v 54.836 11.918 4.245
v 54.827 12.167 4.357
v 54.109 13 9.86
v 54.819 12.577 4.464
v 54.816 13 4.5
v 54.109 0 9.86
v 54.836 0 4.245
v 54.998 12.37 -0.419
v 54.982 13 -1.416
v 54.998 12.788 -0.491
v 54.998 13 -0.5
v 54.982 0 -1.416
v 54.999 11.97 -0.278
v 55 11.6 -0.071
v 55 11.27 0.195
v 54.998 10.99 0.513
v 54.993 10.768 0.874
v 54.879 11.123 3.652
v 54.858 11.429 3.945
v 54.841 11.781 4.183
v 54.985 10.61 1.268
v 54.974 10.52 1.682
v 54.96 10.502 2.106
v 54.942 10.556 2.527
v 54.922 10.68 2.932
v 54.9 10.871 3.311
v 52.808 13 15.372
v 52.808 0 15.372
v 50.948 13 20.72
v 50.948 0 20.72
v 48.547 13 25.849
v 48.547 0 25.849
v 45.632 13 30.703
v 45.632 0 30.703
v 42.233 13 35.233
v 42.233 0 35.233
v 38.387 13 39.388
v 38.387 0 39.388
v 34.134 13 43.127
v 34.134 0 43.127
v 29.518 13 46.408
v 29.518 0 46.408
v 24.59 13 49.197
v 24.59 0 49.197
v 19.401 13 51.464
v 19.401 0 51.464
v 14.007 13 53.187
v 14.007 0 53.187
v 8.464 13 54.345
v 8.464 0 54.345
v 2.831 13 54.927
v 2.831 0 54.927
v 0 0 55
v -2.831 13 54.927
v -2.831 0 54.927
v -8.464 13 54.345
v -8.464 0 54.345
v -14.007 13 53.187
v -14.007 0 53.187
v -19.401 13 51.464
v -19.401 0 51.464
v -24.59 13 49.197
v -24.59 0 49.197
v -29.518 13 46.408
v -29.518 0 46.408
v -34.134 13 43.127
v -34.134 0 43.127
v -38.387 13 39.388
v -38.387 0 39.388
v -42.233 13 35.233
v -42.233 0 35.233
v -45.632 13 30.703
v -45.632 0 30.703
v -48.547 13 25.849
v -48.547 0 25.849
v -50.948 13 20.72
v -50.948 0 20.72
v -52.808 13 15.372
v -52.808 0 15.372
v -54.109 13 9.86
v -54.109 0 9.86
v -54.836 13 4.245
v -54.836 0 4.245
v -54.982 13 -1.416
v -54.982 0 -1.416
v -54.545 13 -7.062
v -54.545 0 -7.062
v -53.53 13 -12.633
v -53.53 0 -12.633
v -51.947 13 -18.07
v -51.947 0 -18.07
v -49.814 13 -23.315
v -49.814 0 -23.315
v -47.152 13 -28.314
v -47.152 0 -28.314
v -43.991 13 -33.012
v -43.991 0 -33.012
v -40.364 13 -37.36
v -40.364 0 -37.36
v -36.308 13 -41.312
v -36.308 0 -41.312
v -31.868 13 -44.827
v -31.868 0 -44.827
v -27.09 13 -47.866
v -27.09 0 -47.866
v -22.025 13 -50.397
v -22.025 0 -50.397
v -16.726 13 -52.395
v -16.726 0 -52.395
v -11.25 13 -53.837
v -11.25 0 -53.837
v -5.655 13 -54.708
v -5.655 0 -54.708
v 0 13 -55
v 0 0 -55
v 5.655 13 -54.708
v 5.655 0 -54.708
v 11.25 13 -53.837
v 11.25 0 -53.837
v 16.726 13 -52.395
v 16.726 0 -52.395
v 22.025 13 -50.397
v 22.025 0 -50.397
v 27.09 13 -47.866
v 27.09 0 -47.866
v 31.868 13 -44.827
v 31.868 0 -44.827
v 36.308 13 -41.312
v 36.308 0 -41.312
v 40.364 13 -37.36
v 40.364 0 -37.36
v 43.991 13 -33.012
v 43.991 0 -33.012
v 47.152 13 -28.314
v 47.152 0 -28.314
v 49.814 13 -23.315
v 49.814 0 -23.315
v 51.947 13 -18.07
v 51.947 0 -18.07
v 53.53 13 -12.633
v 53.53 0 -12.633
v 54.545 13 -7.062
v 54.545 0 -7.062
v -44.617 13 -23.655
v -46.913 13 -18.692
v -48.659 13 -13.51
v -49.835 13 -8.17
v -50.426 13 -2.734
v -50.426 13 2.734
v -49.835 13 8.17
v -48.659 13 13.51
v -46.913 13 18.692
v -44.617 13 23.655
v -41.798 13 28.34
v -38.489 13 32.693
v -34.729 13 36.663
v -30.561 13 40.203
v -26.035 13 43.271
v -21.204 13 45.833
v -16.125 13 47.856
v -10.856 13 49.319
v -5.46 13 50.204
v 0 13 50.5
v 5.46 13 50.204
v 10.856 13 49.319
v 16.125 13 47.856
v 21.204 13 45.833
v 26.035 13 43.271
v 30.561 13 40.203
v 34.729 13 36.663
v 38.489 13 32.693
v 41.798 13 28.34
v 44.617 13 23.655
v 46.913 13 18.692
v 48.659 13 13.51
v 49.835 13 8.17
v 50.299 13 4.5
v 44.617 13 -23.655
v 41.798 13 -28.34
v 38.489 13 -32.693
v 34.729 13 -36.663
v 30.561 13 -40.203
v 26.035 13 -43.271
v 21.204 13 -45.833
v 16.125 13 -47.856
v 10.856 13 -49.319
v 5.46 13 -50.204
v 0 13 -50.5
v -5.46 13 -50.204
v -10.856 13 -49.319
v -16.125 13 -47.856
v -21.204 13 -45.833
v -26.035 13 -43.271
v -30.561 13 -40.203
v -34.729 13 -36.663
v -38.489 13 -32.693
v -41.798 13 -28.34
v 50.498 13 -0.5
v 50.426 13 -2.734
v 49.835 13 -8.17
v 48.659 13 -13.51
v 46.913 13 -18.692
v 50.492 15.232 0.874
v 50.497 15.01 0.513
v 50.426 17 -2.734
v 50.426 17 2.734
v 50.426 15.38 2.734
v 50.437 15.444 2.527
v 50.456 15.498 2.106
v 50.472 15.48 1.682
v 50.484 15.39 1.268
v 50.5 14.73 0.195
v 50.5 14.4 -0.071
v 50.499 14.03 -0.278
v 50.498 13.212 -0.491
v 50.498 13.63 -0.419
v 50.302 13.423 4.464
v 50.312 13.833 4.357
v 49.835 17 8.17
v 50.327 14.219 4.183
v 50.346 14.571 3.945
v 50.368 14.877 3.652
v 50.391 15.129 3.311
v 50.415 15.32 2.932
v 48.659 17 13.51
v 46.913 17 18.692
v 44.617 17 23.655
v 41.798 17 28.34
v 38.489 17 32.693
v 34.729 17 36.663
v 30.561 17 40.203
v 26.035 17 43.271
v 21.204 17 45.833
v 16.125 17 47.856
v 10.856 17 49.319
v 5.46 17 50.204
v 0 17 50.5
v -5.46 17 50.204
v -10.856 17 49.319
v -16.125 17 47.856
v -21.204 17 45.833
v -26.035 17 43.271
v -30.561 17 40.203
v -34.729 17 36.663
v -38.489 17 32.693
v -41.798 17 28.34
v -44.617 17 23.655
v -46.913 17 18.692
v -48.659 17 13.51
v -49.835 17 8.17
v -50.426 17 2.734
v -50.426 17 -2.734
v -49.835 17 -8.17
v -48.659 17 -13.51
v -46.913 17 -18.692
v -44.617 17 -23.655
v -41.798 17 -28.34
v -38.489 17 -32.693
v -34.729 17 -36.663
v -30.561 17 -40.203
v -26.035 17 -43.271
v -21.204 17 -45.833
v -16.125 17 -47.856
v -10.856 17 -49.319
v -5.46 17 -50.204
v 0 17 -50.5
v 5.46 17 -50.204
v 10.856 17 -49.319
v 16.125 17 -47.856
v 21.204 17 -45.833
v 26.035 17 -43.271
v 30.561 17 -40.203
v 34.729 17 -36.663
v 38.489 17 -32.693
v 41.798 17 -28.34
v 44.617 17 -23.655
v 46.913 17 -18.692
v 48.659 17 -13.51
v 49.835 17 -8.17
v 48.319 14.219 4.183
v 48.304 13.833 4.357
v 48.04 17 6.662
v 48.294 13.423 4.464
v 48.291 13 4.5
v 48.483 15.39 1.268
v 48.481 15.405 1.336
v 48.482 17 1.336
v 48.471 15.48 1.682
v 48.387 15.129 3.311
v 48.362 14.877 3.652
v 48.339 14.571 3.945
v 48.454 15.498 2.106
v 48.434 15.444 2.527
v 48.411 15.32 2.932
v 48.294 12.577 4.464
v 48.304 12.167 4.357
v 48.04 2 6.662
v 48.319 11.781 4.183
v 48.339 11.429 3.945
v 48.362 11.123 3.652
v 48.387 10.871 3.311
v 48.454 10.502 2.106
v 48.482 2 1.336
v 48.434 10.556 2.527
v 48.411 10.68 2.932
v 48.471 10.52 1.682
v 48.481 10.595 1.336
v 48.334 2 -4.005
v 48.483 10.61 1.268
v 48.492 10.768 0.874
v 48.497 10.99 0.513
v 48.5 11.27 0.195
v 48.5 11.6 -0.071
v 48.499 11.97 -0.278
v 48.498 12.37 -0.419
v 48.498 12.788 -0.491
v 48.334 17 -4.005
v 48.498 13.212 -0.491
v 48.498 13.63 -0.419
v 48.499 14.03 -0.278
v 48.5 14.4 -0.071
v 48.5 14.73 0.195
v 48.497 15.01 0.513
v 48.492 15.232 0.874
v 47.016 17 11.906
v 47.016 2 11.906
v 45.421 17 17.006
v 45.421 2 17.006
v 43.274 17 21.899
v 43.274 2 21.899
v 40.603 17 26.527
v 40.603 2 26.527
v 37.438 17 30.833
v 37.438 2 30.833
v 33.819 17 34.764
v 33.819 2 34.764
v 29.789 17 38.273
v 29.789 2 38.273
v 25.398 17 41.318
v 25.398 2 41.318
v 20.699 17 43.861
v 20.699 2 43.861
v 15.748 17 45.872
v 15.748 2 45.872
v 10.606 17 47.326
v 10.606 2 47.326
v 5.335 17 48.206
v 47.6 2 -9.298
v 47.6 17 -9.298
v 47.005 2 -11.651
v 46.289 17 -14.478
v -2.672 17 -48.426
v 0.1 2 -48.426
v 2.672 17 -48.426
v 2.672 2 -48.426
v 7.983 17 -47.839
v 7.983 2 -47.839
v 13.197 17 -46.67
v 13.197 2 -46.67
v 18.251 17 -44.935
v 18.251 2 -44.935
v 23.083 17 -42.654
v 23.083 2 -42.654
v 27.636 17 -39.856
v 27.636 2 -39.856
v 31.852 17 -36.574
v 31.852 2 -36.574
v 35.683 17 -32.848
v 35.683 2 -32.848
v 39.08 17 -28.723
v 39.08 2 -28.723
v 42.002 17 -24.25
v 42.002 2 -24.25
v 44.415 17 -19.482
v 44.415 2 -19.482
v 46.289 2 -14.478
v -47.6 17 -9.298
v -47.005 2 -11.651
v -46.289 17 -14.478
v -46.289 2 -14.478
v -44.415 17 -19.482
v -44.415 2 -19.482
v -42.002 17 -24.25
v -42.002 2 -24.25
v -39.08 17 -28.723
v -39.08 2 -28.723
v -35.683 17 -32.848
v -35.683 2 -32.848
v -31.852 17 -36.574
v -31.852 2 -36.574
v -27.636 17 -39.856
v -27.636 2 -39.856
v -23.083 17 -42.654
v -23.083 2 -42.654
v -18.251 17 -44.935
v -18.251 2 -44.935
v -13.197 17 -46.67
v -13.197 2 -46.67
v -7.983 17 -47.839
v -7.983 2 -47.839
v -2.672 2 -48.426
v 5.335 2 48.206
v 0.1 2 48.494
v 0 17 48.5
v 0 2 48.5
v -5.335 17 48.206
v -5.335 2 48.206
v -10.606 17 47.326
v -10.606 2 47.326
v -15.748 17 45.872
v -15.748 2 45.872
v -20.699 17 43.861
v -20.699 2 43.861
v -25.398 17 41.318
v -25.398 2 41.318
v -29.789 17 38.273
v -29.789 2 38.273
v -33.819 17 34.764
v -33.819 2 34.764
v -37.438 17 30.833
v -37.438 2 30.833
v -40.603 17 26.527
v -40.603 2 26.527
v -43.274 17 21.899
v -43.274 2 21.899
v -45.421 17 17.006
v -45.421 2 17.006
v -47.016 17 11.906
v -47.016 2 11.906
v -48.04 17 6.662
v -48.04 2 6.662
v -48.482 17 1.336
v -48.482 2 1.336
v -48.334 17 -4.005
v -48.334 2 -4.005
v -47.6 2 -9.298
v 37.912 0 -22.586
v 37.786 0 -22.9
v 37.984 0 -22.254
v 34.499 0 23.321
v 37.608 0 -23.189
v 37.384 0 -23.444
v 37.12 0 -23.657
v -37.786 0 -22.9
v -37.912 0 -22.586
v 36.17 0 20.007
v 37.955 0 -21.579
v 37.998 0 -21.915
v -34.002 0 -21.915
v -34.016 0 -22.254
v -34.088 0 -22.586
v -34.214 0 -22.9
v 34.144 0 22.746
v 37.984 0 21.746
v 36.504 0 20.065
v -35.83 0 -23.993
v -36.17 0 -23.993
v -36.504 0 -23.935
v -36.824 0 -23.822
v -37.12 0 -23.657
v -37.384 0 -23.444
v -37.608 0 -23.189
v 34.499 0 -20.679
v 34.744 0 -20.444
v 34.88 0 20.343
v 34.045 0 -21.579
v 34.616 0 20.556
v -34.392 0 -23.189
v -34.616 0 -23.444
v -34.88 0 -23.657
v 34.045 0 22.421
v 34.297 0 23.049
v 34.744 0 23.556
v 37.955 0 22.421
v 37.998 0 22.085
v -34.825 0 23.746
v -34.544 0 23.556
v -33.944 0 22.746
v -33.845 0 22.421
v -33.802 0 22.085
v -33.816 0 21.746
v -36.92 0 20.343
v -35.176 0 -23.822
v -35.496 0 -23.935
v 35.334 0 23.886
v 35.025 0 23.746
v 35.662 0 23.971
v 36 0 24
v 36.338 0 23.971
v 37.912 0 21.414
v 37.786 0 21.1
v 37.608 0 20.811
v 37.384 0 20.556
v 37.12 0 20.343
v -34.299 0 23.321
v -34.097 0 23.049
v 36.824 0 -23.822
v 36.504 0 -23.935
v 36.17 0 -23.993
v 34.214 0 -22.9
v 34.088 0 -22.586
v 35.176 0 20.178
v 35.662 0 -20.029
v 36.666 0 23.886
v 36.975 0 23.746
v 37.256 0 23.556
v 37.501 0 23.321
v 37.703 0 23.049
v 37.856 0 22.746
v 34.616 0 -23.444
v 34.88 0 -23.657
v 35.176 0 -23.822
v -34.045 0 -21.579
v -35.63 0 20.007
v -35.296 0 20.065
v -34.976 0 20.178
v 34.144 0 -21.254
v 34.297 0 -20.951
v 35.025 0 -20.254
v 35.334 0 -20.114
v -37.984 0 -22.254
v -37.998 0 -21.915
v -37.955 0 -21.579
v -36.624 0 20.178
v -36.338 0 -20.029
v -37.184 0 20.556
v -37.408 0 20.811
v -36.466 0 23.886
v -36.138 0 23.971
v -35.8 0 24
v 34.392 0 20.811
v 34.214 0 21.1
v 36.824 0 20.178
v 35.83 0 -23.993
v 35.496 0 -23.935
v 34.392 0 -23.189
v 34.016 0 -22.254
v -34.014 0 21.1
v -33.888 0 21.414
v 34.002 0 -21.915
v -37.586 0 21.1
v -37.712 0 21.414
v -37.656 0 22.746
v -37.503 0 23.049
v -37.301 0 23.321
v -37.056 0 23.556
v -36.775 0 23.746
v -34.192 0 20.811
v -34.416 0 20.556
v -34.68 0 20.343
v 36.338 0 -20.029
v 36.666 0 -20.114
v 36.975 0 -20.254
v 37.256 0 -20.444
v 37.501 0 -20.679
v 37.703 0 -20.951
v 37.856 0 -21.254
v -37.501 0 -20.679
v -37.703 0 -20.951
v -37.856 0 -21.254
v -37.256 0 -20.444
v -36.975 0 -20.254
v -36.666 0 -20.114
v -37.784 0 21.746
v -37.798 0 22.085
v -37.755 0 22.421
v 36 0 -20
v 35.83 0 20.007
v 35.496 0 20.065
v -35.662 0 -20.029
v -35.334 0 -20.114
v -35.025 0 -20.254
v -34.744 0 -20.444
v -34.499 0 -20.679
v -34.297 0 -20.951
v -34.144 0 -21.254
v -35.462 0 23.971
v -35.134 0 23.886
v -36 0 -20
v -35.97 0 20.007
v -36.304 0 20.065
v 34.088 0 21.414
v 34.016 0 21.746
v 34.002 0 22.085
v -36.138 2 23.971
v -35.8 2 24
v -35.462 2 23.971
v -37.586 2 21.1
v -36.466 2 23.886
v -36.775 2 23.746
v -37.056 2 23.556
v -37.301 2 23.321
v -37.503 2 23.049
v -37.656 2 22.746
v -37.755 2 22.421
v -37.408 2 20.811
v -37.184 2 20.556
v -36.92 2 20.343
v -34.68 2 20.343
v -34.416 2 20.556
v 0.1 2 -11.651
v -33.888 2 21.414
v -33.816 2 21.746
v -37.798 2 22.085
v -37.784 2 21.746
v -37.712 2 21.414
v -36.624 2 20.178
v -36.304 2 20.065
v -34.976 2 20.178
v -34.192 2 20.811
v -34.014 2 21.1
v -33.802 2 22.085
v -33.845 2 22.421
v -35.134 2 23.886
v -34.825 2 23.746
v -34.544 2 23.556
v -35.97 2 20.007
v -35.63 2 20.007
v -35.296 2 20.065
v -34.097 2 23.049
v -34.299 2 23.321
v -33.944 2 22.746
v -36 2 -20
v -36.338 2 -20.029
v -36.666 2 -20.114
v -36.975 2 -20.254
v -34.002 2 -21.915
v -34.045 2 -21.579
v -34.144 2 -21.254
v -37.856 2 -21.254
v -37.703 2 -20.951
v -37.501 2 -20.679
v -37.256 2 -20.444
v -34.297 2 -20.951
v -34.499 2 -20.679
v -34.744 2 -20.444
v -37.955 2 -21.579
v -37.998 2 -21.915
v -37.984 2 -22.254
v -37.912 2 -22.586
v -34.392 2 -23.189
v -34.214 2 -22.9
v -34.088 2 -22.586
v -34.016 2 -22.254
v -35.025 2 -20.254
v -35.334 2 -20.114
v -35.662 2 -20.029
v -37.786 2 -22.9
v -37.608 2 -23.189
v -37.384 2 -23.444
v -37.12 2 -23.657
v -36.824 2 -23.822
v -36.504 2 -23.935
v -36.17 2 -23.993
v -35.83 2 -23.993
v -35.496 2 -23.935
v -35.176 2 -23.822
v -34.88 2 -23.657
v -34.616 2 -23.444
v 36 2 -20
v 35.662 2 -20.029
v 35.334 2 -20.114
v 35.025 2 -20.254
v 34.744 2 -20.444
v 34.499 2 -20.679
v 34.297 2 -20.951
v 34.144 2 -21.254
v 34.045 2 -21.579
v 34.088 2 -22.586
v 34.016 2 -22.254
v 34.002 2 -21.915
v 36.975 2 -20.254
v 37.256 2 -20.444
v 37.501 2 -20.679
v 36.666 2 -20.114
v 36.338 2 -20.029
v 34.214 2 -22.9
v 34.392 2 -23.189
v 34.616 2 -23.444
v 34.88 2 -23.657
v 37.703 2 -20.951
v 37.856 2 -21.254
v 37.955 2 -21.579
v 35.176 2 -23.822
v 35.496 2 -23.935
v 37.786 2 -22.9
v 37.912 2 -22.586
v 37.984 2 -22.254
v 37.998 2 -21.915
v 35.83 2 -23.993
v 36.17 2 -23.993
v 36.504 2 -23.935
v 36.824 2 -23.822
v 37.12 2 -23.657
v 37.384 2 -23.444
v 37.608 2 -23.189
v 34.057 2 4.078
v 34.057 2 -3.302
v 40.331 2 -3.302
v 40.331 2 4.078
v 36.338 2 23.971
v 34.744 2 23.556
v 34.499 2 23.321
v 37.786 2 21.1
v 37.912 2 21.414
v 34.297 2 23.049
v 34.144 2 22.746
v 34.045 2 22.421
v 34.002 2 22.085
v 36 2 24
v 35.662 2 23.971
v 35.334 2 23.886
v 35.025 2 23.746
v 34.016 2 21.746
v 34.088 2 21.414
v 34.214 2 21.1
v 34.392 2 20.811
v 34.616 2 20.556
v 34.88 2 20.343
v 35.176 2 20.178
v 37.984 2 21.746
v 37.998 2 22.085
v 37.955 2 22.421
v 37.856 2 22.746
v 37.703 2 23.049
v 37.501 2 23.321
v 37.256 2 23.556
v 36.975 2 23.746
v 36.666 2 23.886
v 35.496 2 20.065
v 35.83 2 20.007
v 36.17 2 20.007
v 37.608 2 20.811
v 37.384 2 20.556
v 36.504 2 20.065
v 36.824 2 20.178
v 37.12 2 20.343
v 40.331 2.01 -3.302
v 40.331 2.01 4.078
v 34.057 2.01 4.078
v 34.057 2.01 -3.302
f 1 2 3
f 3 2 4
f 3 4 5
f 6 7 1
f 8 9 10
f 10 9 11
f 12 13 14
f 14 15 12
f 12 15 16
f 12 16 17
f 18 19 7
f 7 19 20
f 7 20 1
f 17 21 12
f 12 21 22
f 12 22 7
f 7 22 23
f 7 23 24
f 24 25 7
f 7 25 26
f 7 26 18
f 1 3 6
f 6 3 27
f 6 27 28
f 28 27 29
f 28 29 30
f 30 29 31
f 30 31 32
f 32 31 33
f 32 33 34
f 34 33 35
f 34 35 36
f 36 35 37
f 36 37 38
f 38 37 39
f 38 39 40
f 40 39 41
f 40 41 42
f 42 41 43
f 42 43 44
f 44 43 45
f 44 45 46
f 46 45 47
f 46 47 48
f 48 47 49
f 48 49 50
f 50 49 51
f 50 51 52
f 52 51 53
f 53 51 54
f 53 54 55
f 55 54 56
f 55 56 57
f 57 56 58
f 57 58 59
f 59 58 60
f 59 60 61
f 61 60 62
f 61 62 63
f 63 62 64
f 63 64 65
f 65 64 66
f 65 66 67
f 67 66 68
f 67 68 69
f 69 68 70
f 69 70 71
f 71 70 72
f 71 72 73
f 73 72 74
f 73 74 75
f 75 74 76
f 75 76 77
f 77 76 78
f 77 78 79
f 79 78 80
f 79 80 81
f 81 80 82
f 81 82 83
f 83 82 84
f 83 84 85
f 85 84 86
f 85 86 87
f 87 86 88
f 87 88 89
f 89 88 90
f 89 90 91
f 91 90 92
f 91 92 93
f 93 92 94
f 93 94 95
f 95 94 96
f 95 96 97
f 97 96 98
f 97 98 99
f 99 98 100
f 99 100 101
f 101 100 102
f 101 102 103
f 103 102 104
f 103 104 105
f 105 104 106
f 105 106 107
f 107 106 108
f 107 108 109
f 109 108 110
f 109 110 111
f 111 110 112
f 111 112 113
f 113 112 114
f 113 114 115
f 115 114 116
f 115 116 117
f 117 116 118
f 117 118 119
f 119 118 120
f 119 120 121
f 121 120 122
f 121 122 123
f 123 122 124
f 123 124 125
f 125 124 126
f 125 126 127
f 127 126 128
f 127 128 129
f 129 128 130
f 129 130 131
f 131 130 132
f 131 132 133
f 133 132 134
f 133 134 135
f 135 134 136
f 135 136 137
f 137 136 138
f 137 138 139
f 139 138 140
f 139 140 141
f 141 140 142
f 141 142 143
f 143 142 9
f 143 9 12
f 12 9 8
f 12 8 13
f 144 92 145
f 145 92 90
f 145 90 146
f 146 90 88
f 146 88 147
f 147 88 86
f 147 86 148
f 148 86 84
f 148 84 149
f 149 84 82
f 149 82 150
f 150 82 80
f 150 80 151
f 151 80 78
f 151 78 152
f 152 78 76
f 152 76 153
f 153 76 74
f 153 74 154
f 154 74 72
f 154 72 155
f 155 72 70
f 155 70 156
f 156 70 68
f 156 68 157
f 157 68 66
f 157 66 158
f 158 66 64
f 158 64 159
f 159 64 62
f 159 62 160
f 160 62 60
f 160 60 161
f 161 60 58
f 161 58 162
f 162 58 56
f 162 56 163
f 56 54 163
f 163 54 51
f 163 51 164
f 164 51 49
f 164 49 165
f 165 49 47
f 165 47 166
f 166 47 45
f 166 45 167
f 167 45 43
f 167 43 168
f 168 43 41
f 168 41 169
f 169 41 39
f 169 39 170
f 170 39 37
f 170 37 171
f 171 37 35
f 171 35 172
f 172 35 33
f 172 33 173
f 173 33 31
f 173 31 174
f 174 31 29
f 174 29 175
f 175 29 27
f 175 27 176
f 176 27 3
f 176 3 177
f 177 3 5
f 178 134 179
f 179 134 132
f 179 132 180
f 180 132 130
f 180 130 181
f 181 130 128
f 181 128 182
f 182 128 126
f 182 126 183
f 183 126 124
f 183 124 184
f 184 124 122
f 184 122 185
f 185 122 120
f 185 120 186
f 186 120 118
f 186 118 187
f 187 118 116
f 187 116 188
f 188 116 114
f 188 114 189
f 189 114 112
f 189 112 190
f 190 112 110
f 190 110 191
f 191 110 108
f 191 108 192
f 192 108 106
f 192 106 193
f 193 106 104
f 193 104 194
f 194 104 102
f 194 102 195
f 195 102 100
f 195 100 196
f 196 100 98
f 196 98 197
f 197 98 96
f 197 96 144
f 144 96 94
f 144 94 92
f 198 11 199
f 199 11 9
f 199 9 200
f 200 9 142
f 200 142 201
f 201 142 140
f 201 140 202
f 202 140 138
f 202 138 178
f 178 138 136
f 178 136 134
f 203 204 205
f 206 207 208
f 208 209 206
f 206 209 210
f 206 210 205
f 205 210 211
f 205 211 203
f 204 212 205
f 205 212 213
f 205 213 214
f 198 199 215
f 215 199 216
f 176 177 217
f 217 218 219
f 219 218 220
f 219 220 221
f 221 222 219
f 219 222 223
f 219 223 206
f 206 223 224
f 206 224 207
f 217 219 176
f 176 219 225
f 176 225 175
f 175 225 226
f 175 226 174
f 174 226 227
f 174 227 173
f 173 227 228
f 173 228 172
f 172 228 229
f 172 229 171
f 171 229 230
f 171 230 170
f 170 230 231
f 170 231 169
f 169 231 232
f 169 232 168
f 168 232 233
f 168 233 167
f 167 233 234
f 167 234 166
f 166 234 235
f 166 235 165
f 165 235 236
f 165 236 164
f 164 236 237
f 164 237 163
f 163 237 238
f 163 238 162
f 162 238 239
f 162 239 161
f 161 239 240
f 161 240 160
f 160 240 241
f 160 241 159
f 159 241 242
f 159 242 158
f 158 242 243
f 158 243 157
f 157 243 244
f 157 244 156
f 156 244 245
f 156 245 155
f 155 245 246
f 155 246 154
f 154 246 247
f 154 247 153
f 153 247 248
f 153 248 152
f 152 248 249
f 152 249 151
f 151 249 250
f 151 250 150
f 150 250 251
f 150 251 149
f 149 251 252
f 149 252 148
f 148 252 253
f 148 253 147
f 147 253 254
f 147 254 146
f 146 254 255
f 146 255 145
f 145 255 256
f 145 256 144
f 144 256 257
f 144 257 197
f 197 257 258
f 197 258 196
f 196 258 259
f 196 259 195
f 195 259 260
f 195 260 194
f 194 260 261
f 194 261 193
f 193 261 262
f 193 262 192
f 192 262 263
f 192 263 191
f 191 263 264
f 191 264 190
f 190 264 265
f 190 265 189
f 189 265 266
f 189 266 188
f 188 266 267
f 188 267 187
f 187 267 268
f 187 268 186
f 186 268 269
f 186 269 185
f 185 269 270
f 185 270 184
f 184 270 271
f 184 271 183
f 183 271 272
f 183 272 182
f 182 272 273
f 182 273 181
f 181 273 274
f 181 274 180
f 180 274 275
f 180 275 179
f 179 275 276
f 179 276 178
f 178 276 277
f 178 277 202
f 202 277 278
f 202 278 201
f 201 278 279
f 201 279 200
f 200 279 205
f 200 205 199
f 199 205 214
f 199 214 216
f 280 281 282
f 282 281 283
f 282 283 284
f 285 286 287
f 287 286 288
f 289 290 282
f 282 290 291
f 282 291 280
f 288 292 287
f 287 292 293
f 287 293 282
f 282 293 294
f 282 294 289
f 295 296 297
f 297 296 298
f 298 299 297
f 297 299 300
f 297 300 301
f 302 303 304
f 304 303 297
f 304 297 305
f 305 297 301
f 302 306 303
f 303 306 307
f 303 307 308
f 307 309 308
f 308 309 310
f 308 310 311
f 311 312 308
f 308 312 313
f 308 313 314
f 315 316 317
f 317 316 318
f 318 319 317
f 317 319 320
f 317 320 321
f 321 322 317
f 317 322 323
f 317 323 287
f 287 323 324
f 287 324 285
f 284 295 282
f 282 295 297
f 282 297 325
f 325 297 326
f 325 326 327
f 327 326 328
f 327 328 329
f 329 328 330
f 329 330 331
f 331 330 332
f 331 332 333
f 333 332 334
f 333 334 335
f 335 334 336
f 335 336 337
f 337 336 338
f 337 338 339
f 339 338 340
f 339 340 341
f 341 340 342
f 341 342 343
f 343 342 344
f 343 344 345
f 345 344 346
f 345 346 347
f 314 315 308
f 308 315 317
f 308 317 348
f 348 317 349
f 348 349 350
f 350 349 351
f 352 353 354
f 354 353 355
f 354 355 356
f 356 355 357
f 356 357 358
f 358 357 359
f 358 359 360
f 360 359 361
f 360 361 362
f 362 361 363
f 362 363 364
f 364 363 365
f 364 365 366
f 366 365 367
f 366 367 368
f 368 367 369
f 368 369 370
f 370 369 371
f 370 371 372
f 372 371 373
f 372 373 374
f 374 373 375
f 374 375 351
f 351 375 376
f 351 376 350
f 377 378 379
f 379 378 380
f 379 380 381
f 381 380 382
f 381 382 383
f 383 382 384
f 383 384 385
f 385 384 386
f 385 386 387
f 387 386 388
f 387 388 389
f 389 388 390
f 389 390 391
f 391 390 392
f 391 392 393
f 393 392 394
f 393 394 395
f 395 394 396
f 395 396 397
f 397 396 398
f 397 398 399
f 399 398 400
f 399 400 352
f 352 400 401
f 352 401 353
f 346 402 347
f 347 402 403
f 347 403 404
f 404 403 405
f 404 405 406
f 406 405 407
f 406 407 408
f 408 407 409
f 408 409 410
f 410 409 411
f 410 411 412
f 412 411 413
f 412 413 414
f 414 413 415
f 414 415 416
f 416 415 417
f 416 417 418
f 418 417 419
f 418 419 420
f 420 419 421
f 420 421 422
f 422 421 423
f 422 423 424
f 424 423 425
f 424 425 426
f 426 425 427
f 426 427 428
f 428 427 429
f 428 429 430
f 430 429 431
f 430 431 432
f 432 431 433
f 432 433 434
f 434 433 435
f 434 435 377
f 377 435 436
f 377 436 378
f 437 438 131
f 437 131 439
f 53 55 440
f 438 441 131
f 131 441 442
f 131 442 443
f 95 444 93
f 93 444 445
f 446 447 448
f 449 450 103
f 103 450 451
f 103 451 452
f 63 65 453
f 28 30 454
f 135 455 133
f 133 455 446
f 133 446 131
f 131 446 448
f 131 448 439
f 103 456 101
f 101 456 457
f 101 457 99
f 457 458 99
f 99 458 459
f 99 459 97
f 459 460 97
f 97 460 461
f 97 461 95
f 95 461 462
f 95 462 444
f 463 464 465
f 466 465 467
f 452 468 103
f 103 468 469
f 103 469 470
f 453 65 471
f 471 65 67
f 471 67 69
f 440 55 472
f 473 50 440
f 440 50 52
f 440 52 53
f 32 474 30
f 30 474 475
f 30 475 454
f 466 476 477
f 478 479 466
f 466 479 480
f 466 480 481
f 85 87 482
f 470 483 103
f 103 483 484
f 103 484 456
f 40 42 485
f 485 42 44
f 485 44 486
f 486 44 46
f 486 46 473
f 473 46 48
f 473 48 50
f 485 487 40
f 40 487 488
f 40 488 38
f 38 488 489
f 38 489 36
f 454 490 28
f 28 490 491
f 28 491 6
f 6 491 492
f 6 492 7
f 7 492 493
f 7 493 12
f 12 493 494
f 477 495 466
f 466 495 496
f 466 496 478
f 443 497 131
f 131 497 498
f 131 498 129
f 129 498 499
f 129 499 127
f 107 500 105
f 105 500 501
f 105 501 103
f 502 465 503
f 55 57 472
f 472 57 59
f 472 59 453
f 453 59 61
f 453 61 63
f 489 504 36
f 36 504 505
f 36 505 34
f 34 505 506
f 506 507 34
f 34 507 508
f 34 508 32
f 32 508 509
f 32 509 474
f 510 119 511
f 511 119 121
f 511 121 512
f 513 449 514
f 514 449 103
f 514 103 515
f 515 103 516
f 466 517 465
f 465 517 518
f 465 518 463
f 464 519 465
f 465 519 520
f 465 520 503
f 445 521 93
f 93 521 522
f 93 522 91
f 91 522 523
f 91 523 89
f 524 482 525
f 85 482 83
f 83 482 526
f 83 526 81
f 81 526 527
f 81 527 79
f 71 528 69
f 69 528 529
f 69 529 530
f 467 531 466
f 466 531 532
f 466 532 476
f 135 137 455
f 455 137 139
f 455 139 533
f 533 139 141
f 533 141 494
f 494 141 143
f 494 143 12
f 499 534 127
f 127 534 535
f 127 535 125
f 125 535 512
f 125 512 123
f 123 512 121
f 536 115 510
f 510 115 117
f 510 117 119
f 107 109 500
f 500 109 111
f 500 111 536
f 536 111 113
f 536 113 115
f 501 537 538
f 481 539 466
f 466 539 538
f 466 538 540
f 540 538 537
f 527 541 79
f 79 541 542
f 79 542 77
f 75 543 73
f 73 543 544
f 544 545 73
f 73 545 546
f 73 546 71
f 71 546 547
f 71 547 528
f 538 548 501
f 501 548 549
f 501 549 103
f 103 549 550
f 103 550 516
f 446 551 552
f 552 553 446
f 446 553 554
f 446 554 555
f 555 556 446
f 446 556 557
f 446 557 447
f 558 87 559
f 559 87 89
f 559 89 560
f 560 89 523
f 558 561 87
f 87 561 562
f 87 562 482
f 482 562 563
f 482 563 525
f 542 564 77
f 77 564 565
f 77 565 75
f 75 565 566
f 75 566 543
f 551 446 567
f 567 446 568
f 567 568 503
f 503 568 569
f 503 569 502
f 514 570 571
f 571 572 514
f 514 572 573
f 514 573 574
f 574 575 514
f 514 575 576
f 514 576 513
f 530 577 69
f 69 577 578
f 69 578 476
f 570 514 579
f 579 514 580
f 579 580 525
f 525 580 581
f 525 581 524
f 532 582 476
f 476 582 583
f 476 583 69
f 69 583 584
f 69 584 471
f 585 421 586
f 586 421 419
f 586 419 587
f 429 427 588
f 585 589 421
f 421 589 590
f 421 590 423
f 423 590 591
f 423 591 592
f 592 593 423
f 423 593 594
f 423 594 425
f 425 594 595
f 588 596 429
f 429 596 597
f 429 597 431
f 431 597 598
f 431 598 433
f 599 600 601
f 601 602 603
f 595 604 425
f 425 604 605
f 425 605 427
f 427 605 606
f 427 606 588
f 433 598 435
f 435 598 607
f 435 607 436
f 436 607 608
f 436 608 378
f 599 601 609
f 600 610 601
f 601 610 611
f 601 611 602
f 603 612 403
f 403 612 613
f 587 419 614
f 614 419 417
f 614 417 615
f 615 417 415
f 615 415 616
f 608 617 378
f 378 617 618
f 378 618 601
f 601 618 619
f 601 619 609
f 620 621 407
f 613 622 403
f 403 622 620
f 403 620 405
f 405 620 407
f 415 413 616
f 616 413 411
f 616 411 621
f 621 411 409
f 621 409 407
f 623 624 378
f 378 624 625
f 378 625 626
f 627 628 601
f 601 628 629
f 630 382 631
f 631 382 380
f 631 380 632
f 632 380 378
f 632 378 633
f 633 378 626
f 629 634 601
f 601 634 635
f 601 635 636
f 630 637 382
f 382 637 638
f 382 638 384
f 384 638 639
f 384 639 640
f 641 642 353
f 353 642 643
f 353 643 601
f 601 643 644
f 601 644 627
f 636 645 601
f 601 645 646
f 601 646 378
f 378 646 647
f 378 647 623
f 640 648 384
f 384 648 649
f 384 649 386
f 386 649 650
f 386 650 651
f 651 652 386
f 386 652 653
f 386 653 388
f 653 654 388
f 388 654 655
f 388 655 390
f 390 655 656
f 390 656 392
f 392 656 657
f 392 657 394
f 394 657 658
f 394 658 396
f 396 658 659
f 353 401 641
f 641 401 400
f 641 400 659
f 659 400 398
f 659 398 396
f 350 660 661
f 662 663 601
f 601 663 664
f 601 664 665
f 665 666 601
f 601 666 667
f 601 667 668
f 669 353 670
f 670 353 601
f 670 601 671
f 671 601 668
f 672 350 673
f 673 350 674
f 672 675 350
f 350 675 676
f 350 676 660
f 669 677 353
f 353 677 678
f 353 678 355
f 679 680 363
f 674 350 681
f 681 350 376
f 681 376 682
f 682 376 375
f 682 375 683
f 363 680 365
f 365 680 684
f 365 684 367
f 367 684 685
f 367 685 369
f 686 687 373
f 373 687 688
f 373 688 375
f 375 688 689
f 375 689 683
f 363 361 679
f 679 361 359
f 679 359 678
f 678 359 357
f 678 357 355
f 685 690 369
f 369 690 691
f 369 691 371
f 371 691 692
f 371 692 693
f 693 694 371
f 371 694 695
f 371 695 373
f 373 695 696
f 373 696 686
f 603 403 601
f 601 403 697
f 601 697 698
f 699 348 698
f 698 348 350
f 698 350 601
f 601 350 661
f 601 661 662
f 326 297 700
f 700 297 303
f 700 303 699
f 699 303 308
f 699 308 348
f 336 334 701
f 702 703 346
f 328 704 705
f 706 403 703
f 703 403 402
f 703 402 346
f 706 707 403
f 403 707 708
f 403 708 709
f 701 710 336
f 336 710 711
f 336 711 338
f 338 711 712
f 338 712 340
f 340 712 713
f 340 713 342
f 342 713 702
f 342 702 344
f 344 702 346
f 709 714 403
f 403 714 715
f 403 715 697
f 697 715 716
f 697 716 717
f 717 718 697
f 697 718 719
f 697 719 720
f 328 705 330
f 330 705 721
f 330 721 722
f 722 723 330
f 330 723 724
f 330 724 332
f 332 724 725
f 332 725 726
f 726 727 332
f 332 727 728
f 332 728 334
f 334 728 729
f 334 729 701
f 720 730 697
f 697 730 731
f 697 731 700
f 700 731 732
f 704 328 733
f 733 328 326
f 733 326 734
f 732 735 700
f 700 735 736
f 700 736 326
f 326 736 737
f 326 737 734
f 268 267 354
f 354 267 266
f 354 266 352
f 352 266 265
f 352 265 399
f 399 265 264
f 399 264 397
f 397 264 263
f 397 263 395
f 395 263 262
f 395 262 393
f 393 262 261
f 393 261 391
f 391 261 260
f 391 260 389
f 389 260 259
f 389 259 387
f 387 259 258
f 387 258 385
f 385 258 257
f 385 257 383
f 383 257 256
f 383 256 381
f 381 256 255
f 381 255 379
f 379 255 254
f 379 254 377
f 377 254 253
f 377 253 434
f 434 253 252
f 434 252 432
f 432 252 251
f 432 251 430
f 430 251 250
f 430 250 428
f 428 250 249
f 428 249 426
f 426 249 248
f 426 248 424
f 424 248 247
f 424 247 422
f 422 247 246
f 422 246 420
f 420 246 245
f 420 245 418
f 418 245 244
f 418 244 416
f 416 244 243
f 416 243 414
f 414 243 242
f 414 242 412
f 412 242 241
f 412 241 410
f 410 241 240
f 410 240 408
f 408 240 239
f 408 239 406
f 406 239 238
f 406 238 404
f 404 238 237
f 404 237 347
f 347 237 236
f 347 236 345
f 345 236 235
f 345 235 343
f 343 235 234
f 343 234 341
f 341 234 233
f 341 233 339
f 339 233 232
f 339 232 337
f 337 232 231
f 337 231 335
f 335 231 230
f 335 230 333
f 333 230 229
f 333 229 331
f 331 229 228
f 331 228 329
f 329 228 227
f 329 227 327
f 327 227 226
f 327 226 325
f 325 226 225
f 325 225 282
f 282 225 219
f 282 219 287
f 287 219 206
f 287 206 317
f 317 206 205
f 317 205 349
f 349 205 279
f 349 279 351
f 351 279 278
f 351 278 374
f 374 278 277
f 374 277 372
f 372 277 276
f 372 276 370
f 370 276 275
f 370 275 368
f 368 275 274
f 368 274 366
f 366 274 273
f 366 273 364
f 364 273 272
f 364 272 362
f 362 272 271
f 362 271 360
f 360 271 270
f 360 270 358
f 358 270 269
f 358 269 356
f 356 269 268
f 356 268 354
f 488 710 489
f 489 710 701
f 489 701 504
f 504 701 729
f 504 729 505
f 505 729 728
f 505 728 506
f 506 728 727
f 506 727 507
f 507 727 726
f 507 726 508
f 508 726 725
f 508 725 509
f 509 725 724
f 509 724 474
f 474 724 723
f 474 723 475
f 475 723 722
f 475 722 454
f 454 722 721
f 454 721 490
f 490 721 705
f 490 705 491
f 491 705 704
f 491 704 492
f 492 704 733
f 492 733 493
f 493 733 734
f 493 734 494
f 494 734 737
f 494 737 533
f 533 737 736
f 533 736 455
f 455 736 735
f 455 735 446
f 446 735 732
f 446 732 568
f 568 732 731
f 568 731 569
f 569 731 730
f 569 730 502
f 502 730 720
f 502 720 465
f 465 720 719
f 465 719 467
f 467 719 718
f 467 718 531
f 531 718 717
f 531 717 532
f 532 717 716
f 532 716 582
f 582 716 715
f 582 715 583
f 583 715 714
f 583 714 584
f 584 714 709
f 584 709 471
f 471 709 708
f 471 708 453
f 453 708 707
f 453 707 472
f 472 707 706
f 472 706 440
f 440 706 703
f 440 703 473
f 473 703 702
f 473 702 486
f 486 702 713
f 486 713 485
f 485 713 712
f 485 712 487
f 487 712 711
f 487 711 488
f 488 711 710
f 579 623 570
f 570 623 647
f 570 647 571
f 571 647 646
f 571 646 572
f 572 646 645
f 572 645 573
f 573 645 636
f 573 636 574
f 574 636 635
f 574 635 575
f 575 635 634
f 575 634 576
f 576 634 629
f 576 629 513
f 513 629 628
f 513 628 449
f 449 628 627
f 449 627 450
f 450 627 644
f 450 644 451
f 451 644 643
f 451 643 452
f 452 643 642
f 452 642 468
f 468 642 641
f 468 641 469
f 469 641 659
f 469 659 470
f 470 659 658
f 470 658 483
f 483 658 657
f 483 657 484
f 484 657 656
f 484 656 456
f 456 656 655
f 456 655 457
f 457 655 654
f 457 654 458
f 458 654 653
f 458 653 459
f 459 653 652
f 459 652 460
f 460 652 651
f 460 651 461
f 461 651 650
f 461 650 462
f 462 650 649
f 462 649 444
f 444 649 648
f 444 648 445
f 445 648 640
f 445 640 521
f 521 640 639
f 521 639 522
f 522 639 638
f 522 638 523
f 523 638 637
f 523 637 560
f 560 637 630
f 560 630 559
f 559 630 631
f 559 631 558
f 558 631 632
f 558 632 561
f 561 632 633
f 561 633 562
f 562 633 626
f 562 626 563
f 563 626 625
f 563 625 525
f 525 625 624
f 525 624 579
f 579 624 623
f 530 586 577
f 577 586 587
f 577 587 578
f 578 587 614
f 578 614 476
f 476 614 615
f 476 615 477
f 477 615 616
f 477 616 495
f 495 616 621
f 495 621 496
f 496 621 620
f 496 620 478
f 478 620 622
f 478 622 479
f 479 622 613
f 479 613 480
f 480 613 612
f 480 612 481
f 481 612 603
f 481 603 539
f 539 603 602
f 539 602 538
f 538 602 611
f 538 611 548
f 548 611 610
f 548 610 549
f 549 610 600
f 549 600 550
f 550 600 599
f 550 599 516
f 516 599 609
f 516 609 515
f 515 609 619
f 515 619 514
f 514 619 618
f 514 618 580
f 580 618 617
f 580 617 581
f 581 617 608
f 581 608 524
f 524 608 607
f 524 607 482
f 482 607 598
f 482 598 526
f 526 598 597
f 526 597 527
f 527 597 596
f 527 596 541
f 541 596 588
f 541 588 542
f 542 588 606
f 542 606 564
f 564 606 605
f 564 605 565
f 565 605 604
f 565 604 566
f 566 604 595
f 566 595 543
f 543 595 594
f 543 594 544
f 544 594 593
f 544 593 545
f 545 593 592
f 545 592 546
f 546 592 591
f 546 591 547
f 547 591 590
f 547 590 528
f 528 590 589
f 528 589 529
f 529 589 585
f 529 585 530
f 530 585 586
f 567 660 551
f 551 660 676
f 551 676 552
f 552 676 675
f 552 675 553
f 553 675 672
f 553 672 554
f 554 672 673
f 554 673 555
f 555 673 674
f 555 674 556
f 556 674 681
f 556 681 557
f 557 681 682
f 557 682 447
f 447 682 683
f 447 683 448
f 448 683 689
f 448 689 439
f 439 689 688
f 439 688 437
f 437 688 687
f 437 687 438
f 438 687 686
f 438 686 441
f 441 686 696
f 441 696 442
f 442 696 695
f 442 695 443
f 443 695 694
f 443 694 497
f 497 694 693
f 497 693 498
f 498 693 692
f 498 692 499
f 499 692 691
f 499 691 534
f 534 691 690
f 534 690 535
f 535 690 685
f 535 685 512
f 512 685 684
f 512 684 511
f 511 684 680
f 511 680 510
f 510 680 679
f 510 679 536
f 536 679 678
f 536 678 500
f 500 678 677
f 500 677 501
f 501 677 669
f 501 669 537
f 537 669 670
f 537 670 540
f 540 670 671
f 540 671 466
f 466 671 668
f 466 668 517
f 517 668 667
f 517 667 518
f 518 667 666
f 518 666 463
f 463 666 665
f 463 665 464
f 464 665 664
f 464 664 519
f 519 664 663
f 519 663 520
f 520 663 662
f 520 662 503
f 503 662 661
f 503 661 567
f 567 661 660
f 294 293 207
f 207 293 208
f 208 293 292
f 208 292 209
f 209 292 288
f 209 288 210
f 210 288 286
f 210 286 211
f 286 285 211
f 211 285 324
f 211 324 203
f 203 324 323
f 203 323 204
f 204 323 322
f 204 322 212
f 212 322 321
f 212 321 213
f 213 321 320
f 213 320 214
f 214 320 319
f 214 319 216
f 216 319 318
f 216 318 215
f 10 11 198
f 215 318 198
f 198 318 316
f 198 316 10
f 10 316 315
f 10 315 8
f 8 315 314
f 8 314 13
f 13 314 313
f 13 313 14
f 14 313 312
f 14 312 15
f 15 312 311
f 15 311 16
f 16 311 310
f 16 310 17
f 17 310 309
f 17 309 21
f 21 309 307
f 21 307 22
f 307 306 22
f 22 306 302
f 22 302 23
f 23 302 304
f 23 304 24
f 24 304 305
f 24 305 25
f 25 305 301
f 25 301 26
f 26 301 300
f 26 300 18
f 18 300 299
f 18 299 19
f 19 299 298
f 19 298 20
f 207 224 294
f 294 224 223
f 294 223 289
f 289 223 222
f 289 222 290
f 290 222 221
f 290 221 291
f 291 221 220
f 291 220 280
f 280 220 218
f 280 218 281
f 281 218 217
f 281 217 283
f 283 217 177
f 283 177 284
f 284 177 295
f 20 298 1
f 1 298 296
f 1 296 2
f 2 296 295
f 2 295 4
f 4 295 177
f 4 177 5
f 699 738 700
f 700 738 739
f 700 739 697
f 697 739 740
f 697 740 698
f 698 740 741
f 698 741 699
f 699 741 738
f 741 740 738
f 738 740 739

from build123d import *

# Parameters (mm, degrees)
SKETCH2_R                = 55
BOSS_EXTRUDE2_DEPTH      = 13
SKETCH7_R                = 50.5
BOSS_EXTRUDE3_DEPTH      = 4
SKETCH8_R                = 48.5
CUT_EXTRUDE3_DEPTH       = 15
SKETCH9_R                = 2
SKETCH9_W                = 3.162660916
SKETCH9_H                = 2.60493009
CUT_EXTRUDE4_DEPTH       = 15
CUT_EXTRUDE5_DEPTH       = 20
CUT_EXTRUDE5_DEPTH_BACK  = 1
SKETCH10_R               = 2.5
BOSS_EXTRUDE5_DEPTH      = 0.01
BOSS_EXTRUDE5_DEPTH_BACK = 2
SKETCH11_W               = 6.274273212
SKETCH11_H               = 7.379534018


with BuildPart() as part:
    # Sketch2 → Boss-Extrude2 (new body)
    with BuildSketch(Plane(origin=(0, 0, 0), x_dir=(1, 0, 0), z_dir=(0, 1, 0))):
        with Locations(Location((0, 0, 0), (0, 0, 90))):
            Circle(SKETCH2_R)
    extrude(amount=BOSS_EXTRUDE2_DEPTH)

    # Sketch7 → Boss-Extrude3 (add)
    with BuildSketch(Plane(origin=(0, 13, 0), x_dir=(1, 0, 0), z_dir=(0, 1, 0))):
        with Locations(Location((0, 0, 0), (0, 0, 270))):
            Circle(SKETCH7_R)
    extrude(amount=BOSS_EXTRUDE3_DEPTH)

    # Sketch8 → Cut-Extrude3 (cut)
    with BuildSketch(Plane(origin=(0, 17, 0), x_dir=(1, 0, 0), z_dir=(0, 1, 0))):
        with Locations(Location((0, 0, 0), (0, 0, 270))):
            Circle(SKETCH8_R)
    extrude(amount=-CUT_EXTRUDE3_DEPTH, mode=Mode.SUBTRACT)

    # Sketch9 → Cut-Extrude4 (cut)
    with BuildSketch(Plane(origin=(0, 2, 0), x_dir=(1, 0, 0), z_dir=(0, 1, 0))):
        with Locations(Location((36, -22, 0), (0, 0, 270))):
            Circle(SKETCH9_R)
        with Locations(Location((-36, 22, 0), (0, 0, 270))):
            Circle(SKETCH9_R)
        with Locations(Location((-35.8, -22, 0), (0, 0, 270))):
            Circle(SKETCH9_R)
        with Locations(Location((36, 22, 0), (0, 0, 270))):
            Circle(SKETCH9_R)
        with Locations((37.581330458, -0.802465045)):
            Rectangle(SKETCH9_W, SKETCH9_H)
    extrude(amount=-CUT_EXTRUDE4_DEPTH, mode=Mode.SUBTRACT)

    # Sketch10 → Cut-Extrude5 (cut, two sides: drawn at the far end of the back side and taken through both)
    with BuildSketch(Plane(origin=(36, 0, 0), x_dir=(0, 0, -1), z_dir=(1, 0, 0)).offset(-CUT_EXTRUDE5_DEPTH_BACK)):
        with Locations(Location((-2, 13, 0), (0, 0, 180))):
            Circle(SKETCH10_R)
    extrude(amount=CUT_EXTRUDE5_DEPTH + CUT_EXTRUDE5_DEPTH_BACK, mode=Mode.SUBTRACT)

    # Sketch11 → Boss-Extrude5 (add, two sides: drawn at the far end of the back side and taken through both)
    with BuildSketch(Plane(origin=(0, 2, 0), x_dir=(1, 0, 0), z_dir=(0, 1, 0)).offset(-BOSS_EXTRUDE5_DEPTH_BACK)):
        with Locations((37.193701051, -0.388212482)):
            Rectangle(SKETCH11_W, SKETCH11_H)
    extrude(amount=BOSS_EXTRUDE5_DEPTH + BOSS_EXTRUDE5_DEPTH_BACK)


solid = part.part
